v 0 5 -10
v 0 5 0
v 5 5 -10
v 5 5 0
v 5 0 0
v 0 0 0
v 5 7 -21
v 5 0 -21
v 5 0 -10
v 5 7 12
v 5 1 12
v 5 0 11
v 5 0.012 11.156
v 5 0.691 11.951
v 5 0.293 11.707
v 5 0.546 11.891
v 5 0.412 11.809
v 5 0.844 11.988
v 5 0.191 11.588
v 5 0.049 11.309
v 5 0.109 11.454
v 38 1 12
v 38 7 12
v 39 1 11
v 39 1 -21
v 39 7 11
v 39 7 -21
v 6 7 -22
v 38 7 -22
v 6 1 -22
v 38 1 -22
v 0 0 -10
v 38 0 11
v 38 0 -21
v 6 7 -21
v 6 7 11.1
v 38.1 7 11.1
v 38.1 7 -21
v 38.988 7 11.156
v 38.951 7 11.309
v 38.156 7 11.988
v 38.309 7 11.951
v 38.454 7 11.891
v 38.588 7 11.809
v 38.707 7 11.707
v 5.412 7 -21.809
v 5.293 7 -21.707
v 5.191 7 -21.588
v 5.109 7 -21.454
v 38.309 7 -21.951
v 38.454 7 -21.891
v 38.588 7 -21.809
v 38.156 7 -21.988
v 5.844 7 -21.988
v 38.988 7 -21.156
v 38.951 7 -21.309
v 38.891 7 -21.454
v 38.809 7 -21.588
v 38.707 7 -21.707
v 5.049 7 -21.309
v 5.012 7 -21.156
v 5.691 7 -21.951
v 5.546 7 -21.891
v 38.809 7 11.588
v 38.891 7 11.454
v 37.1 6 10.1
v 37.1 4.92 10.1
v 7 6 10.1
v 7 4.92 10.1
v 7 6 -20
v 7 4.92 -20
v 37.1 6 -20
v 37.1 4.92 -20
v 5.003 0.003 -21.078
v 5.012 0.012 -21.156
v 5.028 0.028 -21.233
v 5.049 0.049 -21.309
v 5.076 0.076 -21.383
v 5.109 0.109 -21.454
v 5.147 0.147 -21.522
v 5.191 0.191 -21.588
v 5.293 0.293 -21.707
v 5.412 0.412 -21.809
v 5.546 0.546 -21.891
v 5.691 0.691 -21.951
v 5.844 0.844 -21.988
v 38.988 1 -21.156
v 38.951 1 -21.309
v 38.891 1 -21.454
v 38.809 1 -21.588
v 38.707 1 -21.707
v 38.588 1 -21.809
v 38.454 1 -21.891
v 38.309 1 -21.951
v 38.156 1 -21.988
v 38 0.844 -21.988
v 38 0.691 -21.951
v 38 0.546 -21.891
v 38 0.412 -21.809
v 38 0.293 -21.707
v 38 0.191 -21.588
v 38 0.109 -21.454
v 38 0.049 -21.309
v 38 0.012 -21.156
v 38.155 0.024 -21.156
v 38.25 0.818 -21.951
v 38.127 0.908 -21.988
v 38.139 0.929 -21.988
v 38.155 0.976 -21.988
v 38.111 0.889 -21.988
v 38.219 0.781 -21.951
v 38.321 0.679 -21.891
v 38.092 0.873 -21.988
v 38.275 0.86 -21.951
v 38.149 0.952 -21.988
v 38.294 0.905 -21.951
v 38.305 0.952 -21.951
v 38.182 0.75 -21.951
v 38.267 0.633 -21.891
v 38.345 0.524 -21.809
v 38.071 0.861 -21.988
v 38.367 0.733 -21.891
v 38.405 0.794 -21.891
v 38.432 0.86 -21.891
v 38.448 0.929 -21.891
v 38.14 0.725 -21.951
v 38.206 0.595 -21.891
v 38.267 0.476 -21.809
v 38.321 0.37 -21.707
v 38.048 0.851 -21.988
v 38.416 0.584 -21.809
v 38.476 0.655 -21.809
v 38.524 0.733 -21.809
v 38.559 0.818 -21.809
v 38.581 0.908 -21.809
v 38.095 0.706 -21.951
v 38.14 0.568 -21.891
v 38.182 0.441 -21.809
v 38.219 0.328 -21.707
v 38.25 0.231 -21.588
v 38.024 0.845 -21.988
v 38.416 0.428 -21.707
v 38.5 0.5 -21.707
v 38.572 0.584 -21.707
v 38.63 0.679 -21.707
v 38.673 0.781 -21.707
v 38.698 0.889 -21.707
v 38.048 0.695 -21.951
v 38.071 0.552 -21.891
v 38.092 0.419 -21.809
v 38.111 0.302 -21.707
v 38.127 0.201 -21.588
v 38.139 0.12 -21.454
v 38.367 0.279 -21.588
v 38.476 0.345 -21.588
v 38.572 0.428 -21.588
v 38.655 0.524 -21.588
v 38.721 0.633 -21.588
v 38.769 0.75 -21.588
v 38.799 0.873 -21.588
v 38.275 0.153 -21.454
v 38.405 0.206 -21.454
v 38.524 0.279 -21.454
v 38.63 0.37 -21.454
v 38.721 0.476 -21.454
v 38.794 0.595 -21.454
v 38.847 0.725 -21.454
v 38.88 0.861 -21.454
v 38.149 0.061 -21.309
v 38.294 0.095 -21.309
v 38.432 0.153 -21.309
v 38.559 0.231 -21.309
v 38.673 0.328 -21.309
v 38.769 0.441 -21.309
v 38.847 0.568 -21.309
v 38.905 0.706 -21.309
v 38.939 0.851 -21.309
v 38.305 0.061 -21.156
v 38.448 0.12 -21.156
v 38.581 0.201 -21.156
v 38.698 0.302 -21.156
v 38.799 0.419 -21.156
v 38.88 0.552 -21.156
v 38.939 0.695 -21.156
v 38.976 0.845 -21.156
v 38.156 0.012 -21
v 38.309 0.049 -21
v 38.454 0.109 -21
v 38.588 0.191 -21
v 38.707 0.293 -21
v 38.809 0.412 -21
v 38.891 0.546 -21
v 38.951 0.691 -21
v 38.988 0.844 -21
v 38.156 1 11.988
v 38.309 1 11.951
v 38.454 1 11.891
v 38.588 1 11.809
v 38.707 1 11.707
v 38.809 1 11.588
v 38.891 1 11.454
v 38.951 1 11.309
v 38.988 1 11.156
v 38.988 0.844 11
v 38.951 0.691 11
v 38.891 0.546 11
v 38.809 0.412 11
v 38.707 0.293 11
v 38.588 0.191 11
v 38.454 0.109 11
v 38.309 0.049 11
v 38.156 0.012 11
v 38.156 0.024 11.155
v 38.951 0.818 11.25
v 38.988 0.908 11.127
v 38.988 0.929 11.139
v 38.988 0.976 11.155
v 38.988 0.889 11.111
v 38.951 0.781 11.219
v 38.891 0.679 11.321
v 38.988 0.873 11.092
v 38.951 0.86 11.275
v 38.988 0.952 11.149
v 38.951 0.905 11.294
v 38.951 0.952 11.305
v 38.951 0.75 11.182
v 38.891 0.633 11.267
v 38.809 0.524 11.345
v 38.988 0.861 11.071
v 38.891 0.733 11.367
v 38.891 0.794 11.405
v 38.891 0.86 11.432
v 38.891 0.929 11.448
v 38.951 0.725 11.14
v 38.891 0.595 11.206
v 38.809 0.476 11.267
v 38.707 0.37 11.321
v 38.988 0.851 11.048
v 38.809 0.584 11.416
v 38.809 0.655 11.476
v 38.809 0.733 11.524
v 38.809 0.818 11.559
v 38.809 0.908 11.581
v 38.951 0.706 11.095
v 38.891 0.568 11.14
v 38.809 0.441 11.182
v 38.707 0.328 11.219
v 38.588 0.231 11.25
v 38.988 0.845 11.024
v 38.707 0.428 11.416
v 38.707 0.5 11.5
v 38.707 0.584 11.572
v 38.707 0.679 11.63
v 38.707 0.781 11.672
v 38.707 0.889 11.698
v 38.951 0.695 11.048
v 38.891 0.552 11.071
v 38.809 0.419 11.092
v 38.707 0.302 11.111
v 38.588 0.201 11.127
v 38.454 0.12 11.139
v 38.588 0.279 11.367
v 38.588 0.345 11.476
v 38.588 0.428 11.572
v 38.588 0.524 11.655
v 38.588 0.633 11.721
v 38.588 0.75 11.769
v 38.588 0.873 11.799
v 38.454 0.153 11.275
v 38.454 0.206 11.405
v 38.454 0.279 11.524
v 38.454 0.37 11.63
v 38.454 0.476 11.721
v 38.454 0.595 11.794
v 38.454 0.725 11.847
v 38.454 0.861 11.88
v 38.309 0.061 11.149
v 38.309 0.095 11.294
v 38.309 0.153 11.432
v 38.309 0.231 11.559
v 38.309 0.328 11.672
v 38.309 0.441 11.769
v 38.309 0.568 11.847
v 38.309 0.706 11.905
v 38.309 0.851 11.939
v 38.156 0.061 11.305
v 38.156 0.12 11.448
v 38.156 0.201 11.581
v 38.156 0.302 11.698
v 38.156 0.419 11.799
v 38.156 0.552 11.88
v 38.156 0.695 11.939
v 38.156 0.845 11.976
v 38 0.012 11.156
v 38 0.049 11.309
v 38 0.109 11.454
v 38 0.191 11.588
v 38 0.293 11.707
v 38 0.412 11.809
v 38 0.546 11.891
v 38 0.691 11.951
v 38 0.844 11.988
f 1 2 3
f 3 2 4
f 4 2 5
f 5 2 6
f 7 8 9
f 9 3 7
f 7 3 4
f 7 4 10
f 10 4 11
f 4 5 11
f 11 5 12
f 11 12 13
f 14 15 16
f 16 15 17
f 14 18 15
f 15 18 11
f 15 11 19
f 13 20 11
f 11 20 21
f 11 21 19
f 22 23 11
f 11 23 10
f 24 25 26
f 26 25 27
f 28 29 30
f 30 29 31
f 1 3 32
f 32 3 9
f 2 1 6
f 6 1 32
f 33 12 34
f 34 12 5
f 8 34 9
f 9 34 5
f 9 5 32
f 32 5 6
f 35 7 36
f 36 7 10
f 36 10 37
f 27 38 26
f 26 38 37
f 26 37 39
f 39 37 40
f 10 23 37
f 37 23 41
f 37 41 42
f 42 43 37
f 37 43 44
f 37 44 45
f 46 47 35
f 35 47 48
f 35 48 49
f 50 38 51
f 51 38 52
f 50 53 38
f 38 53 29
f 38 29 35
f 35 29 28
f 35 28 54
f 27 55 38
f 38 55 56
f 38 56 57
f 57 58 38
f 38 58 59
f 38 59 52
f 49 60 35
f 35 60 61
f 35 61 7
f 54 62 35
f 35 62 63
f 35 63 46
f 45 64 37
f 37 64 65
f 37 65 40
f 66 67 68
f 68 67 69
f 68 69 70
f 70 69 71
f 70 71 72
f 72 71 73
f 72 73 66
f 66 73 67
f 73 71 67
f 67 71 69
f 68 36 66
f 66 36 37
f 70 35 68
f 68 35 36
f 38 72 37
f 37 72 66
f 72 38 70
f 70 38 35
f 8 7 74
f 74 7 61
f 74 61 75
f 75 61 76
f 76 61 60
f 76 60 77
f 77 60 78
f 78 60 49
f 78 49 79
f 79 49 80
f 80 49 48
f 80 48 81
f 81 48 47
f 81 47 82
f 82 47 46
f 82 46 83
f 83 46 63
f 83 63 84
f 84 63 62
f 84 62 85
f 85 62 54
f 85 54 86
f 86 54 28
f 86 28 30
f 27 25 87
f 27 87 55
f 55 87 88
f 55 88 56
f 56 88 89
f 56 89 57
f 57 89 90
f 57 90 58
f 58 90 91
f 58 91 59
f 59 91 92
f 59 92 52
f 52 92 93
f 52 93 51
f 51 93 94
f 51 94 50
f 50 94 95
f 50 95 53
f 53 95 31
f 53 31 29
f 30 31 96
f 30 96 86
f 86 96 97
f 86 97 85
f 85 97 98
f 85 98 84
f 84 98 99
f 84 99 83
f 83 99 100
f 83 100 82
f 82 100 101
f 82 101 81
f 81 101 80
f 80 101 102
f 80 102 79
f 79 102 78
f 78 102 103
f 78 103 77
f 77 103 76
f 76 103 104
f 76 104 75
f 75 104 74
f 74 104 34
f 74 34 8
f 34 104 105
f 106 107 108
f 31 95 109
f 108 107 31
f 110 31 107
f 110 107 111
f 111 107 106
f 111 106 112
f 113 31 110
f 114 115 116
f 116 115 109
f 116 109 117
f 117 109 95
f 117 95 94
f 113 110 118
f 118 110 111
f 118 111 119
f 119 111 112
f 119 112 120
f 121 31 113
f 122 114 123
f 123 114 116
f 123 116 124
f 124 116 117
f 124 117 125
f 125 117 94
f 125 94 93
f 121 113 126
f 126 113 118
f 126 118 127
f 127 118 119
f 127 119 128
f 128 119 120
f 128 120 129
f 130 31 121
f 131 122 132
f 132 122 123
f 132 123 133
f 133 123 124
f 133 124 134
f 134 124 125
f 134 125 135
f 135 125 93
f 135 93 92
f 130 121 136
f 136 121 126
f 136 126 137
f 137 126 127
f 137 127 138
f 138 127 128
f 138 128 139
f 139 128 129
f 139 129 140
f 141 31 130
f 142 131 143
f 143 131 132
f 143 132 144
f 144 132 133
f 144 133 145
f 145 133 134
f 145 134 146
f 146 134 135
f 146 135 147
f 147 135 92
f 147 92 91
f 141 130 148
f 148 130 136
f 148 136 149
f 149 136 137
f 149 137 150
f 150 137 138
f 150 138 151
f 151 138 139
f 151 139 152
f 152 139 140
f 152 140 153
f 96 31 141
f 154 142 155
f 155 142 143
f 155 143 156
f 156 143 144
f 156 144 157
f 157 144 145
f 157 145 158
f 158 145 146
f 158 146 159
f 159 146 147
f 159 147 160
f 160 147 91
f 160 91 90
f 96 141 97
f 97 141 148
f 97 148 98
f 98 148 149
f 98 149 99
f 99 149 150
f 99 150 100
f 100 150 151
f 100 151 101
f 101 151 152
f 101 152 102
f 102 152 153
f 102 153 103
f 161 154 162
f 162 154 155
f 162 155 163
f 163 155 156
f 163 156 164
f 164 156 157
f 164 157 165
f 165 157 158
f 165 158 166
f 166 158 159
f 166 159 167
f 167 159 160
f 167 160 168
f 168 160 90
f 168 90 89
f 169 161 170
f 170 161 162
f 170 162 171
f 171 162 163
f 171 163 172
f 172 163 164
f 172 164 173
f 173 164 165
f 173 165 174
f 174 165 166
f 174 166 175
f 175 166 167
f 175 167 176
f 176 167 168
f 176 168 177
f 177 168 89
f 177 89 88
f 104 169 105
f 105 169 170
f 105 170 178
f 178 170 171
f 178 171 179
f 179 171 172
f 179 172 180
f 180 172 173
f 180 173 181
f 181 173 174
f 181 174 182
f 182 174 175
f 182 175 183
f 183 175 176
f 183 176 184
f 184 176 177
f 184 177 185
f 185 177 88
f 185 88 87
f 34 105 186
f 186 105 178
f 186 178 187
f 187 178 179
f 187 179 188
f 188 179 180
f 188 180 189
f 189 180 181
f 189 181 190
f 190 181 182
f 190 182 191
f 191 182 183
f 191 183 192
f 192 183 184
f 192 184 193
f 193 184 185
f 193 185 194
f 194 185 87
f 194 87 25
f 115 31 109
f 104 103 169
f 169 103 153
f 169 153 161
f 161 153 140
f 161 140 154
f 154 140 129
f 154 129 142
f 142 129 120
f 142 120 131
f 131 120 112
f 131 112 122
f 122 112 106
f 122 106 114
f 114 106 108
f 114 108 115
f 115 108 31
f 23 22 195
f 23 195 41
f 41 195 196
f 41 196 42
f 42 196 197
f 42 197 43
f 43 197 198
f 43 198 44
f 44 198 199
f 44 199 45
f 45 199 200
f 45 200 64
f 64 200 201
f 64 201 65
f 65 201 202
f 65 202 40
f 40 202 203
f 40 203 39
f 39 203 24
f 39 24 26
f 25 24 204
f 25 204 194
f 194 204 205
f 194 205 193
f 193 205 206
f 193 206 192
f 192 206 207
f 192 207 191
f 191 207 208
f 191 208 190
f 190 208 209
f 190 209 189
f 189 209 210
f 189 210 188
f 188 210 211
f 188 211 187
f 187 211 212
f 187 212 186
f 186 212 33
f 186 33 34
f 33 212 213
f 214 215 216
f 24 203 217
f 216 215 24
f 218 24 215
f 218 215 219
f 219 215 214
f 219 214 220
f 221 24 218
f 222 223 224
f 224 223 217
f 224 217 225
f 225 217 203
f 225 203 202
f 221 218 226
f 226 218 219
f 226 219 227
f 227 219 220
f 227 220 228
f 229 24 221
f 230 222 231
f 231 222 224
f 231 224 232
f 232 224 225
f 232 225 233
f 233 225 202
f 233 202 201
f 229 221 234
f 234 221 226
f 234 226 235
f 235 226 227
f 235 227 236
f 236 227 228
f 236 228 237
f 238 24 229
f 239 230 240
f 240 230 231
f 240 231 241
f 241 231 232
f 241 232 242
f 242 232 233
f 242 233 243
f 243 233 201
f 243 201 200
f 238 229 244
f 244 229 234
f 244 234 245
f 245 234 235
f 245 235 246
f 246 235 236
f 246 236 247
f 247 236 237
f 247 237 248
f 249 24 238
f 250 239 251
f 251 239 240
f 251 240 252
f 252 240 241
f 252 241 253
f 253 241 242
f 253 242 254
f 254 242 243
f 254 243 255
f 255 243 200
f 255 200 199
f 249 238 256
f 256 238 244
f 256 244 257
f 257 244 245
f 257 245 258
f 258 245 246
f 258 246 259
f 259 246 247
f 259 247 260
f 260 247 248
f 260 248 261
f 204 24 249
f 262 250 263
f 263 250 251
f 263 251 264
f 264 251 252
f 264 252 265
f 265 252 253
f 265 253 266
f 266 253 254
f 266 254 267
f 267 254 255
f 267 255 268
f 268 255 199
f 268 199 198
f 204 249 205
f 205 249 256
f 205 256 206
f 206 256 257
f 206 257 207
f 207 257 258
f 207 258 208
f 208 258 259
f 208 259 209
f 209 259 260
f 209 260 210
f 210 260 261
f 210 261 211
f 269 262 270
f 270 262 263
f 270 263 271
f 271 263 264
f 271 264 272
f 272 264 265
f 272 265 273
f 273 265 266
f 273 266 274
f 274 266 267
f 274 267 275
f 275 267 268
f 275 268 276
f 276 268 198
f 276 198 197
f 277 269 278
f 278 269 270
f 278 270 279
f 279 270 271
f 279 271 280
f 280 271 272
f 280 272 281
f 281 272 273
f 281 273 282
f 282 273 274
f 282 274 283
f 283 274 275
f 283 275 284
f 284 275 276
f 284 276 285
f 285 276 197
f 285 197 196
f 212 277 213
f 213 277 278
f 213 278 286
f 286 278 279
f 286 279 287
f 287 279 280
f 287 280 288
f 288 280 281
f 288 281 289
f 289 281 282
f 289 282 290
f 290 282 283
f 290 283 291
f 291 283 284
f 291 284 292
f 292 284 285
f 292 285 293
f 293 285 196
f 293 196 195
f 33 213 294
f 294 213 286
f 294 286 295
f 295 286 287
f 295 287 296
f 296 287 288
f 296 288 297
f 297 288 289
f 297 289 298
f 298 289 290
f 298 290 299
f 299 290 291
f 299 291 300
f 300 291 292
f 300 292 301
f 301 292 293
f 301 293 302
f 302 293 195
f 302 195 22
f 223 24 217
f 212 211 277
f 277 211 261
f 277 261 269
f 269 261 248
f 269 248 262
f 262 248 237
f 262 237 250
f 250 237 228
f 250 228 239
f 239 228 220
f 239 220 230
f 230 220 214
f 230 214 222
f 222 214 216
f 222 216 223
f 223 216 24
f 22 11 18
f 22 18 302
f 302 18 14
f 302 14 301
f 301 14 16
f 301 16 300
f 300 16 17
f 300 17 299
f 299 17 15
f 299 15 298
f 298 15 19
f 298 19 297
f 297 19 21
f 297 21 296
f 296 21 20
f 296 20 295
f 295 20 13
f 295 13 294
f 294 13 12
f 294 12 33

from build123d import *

# Parameters (mm, degrees)
EXTRUDE_1_DEPTH     = 5
SKETCH_2_W          = 34
SKETCH_2_H          = 34
EXTRUDE_2_DEPTH     = 2
SKETCH_3_W          = 30.1
SKETCH_3_H          = 30.1
CUT_EXTRUDE_2_DEPTH = 2.08
CHAMFER_1_SIZE      = 1
FILLET_2_R          = 1


with BuildPart() as part:
    # 草图1 → 凸台-拉伸1 (new body)
    with BuildSketch(Plane(origin=(0, 0, 0), x_dir=(1, 0, 0), z_dir=(0, 1, 0))):
        Polygon((0, 10), (5, 10), (5, 22), (39, 22), (39, -12), (5, -12), (5, 0), (0, 0), align=None)
    extrude(amount=EXTRUDE_1_DEPTH)

    # 草图2 → 凸台-拉伸2 (add)
    with BuildSketch(Plane(origin=(0, 5, 0), x_dir=(1, 0, 0), z_dir=(0, 1, 0))):
        with Locations((22, 5)):
            Rectangle(SKETCH_2_W, SKETCH_2_H)
    extrude(amount=EXTRUDE_2_DEPTH)

    # 草图3 → 切除-拉伸2 (cut)
    with BuildSketch(Plane(origin=(0, 7, 0), x_dir=(1, 0, 0), z_dir=(0, 1, 0))):
        with Locations((22.05, 4.95)):
            Rectangle(SKETCH_3_W, SKETCH_3_H)
    extrude(amount=-CUT_EXTRUDE_2_DEPTH, mode=Mode.SUBTRACT)

    # 倒角1
    chamfer_1_edges = [part.edges().sort_by_distance(p)[0] for p in [
        (22.05, 7, -20),
        (37.1, 7, -4.95),
        (22.05, 7, 10.1),
        (7, 7, -4.95),
    ]]
    chamfer(chamfer_1_edges, length=CHAMFER_1_SIZE)

    # 圆角2
    fillet_2_edges = [part.edges().sort_by_distance(p)[0] for p in [
        (39, 3.5, 12),
        (39, 3.5, -22),
        (5, 3.5, -22),
        (22, 0, 12),
        (39, 0, -5),
        (22, 0, -22),
    ]]
    fillet(fillet_2_edges, radius=FILLET_2_R)


solid = part.part
